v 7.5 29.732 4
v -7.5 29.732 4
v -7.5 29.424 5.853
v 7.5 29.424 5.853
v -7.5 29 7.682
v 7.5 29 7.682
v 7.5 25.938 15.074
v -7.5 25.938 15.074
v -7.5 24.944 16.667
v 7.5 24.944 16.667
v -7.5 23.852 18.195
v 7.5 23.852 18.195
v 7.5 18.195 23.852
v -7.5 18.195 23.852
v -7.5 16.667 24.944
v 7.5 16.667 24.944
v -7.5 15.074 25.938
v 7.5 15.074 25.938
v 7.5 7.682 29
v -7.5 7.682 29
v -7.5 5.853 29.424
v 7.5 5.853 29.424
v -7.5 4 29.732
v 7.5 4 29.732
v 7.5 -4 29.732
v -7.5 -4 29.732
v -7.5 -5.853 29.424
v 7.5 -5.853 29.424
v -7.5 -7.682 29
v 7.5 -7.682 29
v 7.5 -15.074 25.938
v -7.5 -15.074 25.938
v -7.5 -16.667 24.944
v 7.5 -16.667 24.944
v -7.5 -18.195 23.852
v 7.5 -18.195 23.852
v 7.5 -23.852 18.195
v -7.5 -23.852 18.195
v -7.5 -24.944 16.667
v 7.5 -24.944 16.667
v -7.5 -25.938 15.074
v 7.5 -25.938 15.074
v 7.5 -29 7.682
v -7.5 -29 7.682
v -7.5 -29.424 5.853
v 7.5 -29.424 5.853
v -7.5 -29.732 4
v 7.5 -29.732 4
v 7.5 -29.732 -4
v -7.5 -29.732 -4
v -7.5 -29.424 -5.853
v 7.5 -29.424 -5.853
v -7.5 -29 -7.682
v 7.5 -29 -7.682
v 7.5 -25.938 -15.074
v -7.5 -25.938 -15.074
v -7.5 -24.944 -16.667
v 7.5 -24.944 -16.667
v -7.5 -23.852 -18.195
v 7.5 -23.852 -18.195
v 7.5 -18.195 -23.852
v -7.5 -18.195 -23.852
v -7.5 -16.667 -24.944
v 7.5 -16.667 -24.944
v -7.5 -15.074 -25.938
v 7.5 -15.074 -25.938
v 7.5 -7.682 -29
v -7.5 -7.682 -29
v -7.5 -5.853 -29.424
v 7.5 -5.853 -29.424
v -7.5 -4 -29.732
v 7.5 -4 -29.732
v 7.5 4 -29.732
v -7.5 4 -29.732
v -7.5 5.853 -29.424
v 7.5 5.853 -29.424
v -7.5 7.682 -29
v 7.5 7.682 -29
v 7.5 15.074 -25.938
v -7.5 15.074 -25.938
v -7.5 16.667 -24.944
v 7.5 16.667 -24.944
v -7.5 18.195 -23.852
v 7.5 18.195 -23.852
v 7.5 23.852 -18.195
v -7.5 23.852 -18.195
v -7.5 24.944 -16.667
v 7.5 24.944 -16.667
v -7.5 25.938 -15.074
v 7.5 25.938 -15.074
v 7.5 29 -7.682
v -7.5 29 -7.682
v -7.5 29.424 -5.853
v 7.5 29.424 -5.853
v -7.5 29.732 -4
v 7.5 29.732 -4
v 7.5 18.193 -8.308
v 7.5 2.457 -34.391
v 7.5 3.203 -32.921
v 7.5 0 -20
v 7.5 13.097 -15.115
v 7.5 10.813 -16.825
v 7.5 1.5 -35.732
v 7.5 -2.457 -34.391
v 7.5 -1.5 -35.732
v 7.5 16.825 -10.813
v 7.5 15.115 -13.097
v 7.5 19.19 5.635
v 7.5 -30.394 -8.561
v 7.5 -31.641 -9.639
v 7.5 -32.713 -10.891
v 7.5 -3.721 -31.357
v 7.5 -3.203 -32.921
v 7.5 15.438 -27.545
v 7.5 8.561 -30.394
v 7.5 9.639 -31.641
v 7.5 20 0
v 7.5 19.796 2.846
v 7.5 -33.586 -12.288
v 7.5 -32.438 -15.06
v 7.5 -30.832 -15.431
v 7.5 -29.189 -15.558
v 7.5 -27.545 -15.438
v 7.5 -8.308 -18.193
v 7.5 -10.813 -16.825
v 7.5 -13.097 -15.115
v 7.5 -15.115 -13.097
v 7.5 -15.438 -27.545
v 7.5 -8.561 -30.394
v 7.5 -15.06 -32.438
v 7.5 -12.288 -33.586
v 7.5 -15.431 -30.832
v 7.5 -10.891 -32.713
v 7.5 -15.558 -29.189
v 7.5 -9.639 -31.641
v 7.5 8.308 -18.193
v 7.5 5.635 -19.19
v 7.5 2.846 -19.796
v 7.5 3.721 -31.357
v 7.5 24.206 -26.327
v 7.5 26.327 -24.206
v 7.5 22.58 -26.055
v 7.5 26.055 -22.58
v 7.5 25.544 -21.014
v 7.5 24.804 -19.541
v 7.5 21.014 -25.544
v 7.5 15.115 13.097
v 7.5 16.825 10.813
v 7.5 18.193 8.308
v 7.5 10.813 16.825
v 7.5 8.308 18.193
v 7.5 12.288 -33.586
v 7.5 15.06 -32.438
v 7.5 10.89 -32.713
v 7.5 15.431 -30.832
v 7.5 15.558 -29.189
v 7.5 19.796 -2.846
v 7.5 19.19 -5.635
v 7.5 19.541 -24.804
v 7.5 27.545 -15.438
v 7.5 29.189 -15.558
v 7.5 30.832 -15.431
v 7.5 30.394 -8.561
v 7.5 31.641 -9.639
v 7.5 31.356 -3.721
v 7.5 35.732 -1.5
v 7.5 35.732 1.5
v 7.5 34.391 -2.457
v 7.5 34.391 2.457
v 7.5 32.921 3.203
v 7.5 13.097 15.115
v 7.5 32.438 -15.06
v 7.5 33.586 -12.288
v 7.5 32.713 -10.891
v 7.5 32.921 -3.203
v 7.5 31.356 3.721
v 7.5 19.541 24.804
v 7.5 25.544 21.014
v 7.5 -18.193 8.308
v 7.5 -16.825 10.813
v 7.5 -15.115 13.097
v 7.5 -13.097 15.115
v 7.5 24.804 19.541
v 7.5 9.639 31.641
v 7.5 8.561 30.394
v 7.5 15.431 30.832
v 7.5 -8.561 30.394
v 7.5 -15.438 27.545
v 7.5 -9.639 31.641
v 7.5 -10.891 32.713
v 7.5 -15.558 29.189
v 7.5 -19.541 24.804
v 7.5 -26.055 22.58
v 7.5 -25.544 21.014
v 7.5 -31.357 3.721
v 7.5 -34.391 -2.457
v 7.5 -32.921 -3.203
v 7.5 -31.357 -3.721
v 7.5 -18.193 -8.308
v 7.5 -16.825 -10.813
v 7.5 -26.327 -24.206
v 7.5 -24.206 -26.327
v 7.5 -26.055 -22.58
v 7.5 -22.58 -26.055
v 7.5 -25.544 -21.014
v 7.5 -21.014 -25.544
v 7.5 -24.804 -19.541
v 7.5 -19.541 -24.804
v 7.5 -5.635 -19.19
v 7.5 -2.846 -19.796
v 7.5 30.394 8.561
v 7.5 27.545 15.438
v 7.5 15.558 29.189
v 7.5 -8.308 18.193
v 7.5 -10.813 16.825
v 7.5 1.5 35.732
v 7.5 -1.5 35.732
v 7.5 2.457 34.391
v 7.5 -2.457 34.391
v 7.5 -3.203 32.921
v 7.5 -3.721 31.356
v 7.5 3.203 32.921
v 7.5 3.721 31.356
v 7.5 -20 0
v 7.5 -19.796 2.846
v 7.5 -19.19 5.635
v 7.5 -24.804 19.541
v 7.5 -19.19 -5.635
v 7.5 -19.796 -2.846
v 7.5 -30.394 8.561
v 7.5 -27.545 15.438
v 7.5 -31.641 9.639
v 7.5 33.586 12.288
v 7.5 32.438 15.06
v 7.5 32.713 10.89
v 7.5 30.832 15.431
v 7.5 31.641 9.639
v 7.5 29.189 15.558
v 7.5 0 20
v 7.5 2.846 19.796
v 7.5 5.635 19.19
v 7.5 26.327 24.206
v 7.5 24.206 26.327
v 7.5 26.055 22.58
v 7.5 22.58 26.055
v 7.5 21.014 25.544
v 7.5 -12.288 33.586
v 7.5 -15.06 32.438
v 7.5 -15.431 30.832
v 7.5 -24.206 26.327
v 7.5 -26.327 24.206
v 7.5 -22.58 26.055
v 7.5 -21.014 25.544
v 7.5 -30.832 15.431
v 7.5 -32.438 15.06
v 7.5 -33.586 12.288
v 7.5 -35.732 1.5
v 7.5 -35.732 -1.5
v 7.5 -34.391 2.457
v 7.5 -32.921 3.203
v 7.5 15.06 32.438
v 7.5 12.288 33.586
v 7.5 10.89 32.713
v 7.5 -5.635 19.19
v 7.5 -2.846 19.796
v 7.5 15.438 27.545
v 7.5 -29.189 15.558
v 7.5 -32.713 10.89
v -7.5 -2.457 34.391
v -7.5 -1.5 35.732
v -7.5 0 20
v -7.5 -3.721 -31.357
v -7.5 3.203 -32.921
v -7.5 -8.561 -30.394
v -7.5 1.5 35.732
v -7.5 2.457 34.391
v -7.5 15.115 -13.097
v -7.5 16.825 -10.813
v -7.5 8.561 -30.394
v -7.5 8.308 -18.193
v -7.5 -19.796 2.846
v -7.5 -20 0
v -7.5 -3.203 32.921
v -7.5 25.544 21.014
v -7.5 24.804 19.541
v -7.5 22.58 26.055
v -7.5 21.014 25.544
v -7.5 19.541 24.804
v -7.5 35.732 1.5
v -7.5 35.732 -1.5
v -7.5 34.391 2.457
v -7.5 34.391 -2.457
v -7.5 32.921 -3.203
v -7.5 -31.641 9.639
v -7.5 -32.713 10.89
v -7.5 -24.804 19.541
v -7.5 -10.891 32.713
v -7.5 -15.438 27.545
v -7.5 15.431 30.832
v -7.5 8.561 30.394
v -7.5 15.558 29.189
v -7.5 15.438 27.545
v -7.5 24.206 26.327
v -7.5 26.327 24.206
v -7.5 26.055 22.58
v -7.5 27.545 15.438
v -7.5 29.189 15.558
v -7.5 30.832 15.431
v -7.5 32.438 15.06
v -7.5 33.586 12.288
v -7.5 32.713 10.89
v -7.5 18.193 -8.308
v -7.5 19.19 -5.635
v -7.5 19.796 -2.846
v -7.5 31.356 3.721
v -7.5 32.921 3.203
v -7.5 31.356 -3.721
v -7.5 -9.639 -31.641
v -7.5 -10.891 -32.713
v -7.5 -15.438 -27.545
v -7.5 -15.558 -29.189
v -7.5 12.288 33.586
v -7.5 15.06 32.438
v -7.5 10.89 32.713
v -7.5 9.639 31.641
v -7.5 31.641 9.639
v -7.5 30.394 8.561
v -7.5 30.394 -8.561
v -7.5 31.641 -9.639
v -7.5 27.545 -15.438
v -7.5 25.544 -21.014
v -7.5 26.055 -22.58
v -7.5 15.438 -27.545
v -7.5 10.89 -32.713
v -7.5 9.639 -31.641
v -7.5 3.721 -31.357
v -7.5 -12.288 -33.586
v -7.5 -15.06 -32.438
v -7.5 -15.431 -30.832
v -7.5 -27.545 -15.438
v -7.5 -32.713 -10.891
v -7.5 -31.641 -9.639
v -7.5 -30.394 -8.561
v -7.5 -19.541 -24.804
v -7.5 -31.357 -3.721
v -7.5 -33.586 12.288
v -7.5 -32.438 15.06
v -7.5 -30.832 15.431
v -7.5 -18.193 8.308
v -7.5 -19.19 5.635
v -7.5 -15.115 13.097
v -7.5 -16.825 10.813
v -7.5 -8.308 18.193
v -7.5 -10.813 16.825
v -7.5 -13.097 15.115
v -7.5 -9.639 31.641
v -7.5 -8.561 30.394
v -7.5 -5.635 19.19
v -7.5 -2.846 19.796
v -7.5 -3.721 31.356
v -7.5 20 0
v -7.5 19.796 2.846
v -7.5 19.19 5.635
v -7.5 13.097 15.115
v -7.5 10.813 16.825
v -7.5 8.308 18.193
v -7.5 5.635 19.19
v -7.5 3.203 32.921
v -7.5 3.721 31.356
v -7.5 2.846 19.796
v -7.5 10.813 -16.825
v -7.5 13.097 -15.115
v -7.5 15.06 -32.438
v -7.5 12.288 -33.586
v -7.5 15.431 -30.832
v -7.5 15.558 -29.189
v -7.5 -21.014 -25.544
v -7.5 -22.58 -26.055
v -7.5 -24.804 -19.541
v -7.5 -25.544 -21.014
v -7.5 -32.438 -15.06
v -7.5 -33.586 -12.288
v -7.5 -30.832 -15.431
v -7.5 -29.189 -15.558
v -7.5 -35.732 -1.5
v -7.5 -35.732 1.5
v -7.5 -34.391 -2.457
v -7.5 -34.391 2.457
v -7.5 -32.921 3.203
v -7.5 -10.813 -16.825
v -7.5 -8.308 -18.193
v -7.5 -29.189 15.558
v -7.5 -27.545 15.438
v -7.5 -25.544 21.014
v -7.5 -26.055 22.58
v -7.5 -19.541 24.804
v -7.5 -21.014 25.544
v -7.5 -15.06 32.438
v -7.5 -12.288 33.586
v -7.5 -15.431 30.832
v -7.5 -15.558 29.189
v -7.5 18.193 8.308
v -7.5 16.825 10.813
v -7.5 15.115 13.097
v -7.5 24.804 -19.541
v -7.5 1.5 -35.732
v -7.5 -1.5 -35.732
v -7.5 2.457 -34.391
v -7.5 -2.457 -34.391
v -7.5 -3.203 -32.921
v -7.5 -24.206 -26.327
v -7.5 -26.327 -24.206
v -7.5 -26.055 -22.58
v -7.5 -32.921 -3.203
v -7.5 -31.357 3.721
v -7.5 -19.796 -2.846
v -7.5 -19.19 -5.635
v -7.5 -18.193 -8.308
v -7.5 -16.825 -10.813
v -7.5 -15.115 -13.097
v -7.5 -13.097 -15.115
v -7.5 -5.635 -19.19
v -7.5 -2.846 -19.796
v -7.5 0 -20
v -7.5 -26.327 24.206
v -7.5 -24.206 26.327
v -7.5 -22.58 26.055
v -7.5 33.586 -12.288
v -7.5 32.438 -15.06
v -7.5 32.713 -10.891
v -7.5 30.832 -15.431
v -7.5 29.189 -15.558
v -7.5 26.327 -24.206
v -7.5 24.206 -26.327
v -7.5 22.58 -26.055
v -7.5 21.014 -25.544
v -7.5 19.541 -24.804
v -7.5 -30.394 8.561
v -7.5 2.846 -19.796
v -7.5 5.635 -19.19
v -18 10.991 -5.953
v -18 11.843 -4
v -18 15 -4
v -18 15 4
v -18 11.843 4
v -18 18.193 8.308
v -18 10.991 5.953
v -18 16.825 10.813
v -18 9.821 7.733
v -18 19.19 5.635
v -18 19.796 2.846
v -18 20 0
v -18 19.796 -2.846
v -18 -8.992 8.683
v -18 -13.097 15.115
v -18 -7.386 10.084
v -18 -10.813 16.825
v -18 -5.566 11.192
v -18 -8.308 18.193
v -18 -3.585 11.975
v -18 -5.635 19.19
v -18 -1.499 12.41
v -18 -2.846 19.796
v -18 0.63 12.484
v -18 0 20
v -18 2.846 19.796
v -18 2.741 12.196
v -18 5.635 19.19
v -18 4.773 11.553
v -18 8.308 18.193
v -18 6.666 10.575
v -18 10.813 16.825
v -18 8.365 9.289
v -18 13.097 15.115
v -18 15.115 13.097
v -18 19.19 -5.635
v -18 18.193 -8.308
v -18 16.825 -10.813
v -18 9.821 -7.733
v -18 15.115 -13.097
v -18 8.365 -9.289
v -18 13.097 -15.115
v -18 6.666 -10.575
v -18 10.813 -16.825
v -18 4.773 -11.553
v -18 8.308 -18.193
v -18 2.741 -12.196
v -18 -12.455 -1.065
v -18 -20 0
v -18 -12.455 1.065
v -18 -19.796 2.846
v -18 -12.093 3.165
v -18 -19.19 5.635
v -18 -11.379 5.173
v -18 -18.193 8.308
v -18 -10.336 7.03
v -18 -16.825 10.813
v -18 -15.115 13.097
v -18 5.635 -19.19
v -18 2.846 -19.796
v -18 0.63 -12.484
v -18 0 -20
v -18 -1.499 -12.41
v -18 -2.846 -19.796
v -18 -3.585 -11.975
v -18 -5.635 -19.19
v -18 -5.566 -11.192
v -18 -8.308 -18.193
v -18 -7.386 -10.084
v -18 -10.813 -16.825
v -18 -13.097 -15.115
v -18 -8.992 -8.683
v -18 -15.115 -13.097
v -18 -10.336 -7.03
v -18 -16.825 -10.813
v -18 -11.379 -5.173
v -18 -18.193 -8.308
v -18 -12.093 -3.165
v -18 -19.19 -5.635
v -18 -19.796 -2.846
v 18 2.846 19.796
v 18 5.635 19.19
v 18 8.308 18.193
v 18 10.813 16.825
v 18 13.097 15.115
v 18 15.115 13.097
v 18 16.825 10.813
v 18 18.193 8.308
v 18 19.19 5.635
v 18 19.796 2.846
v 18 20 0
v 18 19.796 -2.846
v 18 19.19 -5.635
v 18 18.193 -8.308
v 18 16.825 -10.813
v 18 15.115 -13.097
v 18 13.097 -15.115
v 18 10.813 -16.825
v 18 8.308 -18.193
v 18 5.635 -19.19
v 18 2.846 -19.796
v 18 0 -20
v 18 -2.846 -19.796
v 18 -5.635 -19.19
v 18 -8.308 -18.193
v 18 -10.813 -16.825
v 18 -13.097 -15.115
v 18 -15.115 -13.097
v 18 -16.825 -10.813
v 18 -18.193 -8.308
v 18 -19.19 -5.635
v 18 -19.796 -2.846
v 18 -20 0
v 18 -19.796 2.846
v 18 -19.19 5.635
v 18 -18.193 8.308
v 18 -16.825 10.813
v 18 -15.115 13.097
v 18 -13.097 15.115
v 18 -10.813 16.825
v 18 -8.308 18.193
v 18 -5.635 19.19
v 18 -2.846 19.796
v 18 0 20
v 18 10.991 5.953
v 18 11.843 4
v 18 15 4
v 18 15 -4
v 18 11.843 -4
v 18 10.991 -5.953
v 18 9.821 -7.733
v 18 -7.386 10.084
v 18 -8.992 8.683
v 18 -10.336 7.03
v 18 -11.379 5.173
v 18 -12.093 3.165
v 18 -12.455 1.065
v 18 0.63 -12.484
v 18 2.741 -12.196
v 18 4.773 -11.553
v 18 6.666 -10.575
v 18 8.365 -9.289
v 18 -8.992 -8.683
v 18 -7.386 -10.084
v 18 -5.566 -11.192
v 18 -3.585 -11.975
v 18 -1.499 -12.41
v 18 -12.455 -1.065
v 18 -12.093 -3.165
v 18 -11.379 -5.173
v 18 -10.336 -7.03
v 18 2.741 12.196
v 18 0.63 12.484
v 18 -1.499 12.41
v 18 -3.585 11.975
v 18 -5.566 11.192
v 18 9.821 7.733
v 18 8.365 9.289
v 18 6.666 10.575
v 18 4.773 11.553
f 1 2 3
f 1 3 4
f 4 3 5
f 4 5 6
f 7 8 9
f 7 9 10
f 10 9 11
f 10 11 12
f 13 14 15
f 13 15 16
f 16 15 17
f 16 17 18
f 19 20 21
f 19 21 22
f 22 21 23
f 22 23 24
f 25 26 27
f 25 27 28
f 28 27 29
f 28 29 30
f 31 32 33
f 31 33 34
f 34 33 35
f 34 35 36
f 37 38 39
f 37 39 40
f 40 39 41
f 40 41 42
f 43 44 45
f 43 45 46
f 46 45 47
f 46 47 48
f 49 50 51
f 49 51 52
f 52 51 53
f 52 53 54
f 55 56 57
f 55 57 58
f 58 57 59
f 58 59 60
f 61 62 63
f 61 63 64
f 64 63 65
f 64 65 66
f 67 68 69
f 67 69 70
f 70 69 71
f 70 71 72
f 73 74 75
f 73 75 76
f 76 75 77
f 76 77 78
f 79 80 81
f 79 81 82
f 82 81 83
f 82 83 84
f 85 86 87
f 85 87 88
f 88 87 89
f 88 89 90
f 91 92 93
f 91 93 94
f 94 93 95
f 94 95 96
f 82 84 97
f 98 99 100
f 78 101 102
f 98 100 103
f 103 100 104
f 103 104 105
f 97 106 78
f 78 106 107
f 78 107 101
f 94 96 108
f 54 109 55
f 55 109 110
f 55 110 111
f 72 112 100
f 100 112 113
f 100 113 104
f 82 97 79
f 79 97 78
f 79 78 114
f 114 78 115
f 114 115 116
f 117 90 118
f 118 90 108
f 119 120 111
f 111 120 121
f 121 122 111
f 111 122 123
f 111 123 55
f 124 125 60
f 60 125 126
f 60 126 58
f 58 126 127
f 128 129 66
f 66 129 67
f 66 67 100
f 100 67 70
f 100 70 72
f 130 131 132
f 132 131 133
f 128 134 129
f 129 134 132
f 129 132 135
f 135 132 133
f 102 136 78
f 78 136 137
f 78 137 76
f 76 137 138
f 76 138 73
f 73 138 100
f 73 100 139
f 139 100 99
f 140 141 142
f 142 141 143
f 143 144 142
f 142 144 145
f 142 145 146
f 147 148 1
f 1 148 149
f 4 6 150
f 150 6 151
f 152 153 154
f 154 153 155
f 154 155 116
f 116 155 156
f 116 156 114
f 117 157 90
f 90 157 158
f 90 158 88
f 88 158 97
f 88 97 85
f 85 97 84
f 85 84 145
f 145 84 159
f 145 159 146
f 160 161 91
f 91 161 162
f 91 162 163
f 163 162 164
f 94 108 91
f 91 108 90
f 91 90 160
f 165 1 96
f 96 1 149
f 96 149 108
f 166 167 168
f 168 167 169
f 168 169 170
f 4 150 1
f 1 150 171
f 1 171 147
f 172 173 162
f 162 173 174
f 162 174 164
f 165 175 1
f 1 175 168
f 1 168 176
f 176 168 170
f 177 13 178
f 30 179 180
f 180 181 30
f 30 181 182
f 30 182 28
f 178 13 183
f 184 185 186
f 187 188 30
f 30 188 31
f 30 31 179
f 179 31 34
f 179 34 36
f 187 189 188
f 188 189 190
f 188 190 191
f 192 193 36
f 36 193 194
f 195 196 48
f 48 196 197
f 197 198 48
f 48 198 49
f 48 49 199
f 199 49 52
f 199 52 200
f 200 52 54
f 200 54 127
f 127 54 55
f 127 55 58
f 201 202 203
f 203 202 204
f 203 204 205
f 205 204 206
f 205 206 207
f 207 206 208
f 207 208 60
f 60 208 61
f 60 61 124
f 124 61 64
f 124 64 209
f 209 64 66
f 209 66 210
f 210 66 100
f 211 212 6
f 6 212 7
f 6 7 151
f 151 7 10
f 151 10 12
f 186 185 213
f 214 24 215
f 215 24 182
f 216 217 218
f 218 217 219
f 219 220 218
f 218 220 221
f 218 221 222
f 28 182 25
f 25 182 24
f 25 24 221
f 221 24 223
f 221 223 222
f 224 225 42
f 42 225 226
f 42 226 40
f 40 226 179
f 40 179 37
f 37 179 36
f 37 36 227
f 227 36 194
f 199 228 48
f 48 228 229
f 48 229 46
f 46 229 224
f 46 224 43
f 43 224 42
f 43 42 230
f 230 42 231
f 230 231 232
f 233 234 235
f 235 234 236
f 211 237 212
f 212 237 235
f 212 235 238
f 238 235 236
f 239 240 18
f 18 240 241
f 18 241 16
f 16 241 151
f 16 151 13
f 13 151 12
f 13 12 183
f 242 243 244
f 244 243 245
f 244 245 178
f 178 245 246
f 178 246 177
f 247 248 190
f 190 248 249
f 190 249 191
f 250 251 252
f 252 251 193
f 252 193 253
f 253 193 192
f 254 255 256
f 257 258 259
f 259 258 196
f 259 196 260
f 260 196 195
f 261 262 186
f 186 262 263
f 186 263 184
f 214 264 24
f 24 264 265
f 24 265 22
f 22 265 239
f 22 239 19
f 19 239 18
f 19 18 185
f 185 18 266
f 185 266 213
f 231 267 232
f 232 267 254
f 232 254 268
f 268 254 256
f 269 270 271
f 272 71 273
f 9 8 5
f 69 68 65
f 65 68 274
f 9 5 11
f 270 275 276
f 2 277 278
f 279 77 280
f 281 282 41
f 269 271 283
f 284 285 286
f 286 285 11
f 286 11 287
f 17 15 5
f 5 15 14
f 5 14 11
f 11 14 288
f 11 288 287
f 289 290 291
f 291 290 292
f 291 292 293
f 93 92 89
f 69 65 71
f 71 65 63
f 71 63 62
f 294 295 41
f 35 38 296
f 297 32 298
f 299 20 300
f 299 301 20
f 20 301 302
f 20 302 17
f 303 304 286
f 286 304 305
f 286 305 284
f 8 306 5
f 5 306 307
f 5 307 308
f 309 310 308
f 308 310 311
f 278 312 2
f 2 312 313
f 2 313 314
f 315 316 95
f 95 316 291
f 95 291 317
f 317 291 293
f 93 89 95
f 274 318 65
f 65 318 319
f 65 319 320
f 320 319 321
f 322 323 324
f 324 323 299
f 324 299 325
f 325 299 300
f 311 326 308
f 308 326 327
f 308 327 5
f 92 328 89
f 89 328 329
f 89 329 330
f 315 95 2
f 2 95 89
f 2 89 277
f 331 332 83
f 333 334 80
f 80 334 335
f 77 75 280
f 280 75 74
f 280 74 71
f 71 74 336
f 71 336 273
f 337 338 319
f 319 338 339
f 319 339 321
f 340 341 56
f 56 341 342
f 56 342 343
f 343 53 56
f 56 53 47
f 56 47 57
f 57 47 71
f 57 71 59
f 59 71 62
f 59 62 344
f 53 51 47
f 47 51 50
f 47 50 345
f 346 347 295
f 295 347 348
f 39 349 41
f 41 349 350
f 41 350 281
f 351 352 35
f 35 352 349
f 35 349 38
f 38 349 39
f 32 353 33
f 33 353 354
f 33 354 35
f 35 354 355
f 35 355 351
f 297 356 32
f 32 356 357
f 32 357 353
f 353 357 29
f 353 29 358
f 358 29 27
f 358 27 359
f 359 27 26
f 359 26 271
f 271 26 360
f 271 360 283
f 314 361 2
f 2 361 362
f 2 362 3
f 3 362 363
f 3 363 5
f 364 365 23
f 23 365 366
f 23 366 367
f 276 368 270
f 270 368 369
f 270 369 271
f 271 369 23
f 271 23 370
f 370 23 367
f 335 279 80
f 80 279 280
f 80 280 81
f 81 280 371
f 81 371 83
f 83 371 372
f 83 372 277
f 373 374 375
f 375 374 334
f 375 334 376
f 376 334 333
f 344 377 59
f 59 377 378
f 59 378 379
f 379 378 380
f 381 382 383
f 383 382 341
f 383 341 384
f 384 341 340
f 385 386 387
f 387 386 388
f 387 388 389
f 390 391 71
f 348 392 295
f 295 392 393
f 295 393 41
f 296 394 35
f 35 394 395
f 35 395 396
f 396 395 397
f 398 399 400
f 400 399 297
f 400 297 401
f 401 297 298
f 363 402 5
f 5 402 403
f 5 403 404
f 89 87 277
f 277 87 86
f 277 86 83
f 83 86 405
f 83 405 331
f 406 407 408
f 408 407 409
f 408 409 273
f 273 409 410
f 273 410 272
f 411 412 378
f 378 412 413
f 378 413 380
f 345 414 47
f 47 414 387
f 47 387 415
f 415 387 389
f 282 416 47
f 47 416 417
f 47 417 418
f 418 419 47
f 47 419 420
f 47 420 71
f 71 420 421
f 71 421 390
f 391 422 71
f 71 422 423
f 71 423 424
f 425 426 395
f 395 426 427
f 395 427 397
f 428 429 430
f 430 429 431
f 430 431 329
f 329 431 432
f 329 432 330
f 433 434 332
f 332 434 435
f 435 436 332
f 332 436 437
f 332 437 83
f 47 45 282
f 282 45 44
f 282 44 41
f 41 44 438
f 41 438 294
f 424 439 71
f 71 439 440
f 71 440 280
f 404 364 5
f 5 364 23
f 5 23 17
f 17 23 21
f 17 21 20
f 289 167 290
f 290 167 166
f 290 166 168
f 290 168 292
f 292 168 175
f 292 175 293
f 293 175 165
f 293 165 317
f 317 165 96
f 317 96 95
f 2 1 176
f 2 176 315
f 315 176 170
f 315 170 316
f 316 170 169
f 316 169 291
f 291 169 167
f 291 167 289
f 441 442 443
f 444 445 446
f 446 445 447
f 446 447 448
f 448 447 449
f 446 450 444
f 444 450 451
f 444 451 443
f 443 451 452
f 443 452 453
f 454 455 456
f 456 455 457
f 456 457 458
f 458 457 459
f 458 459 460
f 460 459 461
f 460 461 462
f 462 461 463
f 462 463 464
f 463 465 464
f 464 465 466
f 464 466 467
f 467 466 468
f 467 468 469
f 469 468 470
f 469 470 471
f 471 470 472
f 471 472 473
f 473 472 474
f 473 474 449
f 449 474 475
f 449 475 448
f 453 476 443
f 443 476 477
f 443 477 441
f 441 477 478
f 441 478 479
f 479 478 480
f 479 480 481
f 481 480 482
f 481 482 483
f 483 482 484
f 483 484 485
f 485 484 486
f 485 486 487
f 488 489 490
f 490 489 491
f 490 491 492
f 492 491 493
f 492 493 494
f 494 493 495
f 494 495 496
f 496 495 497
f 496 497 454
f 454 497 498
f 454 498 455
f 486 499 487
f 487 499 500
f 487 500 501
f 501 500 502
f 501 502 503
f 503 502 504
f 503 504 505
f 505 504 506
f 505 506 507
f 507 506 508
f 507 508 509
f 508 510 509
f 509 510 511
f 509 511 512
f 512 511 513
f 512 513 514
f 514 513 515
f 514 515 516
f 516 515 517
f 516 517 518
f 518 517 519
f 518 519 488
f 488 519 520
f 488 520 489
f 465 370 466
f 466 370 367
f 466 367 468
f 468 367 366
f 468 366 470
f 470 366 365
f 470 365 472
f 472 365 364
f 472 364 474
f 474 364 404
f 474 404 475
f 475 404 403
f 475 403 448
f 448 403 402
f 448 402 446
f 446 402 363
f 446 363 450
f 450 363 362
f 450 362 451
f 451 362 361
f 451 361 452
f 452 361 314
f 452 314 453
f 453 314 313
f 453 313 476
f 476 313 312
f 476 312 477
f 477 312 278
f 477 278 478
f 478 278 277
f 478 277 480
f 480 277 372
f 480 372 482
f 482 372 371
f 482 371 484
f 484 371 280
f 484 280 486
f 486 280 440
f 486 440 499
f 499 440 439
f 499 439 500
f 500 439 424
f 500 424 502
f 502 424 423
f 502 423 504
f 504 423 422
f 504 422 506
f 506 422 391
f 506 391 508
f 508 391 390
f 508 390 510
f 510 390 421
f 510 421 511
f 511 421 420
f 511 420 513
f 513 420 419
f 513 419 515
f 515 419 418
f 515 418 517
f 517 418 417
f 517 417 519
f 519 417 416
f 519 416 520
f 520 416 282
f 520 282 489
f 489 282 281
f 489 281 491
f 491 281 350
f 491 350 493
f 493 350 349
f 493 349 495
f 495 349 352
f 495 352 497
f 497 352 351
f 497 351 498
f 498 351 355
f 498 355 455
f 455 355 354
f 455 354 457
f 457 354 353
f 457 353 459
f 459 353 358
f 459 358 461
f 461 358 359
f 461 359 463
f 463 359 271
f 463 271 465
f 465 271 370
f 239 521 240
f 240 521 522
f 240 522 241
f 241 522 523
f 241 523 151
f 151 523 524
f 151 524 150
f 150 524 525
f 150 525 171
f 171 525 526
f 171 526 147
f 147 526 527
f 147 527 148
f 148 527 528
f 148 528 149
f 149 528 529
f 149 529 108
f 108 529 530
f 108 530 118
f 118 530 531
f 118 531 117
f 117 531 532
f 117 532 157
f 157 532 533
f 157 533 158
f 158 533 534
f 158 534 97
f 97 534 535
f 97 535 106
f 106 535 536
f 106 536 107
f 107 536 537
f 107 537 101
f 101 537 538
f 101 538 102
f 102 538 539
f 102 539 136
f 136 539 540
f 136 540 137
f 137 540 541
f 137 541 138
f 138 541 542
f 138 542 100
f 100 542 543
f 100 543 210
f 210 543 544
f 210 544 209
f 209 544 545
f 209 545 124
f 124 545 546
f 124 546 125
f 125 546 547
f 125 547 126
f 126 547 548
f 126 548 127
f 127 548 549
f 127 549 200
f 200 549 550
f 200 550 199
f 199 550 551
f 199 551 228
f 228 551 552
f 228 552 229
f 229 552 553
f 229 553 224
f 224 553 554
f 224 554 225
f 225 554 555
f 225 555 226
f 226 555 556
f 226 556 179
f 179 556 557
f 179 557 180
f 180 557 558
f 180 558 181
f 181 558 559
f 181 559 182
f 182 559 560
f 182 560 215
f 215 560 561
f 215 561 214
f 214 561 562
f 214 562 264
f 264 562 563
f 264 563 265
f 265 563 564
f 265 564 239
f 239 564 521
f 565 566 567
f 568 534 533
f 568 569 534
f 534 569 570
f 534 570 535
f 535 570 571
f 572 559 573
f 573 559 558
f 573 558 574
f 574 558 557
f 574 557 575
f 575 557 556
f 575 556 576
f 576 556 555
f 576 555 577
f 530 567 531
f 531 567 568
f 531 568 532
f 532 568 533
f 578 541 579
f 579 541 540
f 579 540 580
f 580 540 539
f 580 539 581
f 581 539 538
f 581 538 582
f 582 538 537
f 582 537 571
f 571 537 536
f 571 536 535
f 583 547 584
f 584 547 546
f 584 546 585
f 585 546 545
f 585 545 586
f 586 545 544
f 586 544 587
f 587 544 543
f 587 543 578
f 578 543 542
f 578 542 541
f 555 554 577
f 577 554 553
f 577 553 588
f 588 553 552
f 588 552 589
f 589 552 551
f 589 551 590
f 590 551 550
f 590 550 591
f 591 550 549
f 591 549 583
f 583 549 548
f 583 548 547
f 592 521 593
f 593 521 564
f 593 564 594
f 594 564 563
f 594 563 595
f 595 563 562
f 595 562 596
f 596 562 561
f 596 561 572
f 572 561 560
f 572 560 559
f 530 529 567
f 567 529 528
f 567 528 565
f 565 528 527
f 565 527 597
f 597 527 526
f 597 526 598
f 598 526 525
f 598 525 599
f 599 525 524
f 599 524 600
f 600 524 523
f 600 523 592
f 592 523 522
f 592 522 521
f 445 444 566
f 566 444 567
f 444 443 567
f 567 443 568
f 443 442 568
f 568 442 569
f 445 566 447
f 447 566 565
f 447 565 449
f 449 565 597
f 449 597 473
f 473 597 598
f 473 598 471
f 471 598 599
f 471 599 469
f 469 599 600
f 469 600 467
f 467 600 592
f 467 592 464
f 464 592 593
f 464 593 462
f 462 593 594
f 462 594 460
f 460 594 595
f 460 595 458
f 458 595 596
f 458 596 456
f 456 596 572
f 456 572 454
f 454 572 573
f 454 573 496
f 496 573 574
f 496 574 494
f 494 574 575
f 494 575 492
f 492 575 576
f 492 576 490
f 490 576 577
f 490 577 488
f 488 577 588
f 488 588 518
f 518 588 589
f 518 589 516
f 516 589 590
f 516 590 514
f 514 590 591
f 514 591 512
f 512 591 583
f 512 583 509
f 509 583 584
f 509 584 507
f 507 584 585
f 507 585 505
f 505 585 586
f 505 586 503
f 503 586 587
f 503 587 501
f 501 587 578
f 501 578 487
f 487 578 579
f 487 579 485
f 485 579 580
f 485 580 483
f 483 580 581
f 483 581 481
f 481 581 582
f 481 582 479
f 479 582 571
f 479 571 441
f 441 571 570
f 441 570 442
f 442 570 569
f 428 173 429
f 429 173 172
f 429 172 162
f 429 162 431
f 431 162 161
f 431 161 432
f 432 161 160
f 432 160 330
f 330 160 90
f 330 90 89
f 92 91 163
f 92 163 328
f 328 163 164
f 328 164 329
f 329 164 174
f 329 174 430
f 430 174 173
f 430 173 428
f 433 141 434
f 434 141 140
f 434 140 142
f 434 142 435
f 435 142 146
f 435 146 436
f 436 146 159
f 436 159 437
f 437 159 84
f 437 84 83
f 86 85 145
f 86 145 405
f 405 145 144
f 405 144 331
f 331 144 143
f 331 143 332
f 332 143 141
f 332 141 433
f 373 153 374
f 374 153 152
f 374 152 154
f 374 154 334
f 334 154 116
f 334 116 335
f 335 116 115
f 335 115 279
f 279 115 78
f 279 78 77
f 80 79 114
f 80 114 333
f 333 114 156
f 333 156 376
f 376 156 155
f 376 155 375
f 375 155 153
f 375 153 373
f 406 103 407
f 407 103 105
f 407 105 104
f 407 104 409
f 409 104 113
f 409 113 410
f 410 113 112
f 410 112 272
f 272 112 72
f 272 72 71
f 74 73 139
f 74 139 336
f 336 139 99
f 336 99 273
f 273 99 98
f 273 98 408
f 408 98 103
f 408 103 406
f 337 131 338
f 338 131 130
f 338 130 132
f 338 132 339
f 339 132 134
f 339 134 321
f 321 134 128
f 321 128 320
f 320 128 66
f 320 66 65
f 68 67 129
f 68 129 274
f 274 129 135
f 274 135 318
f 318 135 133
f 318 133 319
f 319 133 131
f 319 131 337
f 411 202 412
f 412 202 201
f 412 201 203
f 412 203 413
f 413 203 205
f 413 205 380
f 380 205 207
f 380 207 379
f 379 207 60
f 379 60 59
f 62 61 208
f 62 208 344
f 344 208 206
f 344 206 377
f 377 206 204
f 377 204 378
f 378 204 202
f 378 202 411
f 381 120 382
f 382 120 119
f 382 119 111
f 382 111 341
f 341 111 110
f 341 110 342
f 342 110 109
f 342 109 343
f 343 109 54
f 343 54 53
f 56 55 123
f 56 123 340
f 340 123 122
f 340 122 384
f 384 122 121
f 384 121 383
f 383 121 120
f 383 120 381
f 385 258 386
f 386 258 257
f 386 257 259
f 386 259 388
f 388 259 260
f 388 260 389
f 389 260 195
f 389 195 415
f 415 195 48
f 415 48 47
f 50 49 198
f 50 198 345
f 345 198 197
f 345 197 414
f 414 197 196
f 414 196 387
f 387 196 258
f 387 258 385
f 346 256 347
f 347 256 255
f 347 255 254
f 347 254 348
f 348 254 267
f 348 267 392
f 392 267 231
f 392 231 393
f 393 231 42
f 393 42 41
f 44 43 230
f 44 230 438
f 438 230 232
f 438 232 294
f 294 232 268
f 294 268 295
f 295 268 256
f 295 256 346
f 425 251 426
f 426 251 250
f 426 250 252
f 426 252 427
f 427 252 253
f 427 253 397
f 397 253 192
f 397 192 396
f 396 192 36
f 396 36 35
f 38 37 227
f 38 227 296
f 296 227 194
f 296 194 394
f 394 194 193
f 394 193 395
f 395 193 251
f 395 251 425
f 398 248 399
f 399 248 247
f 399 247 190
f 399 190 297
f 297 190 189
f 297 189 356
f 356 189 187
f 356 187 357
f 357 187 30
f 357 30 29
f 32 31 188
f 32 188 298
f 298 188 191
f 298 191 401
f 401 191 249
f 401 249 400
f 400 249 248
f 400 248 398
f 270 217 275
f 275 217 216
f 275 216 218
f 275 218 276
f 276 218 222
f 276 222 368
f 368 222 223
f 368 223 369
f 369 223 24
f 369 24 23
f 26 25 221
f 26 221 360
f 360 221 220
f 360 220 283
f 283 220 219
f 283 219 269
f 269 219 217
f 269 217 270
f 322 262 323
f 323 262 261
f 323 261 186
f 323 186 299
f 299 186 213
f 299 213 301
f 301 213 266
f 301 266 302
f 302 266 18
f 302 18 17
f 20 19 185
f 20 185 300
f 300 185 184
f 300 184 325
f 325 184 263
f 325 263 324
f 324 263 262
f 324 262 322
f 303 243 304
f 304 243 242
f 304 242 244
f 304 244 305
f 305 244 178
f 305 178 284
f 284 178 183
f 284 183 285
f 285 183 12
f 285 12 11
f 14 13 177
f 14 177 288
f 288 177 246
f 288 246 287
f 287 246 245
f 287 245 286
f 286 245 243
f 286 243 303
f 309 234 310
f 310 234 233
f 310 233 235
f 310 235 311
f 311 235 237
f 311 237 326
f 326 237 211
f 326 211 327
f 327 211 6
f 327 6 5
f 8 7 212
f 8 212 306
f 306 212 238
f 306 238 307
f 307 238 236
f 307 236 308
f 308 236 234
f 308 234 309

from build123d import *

# Parameters (mm, degrees)
SKETCH1_R           = 30
BOSS_EXTRUDE1_DEPTH = 7.5
BOSS_EXTRUDE2_DEPTH = 15
SKETCH4_R           = 20
BOSS_EXTRUDE3_DEPTH = 18
CUT_EXTRUDE1_DEPTH  = 37
CIRPATTERN1_COUNT   = 16


with BuildPart() as part:
    # Sketch1 → Boss-Extrude1 (new body, symmetric)
    with BuildSketch(Plane(origin=(0, 0, 0), x_dir=(0, 0, -1), z_dir=(1, 0, 0))):
        Circle(SKETCH1_R)
    extrude(amount=BOSS_EXTRUDE1_DEPTH, both=True)

    # Sketch3 → Boss-Extrude2 (add)
    with BuildSketch(Plane(origin=(7.5, 0, 0), x_dir=(0, 0, -1), z_dir=(1, 0, 0))):
        with BuildLine():
            Line((-1.5, 35.732137495), (1.5, 35.732137495))
            ThreePointArc((1.5, 35.732137495), (3.203300204, 32.92101258), (4, 29.732137495))
            ThreePointArc((4, 29.732137495), (0, 30), (-4, 29.732137495))
            ThreePointArc((-4, 29.732137495), (-3.203300204, 32.92101258), (-1.5, 35.732137495))
        make_face()
    boss_extrude2 = extrude(amount=-BOSS_EXTRUDE2_DEPTH)

    # Sketch4 → Boss-Extrude3 (add, symmetric)
    with BuildSketch(Plane(origin=(0, 0, 0), x_dir=(0, 0, -1), z_dir=(1, 0, 0))):
        Circle(SKETCH4_R)
    extrude(amount=BOSS_EXTRUDE3_DEPTH, both=True)

    # Sketch5 → Cut-Extrude1 (cut, through all)
    with BuildSketch(Plane(origin=(18, 0, 0), x_dir=(0, 0, -1), z_dir=(1, 0, 0))):
        with BuildLine():
            Line((-4, 15), (4, 15))
            Line((4, 15), (4, 11.842719282))
            ThreePointArc((4, 11.842719282), (0, -12.5), (-4, 11.842719282))
            Line((-4, 11.842719282), (-4, 15))
        make_face()
    extrude(amount=-CUT_EXTRUDE1_DEPTH, mode=Mode.SUBTRACT)

    # CirPattern1: Boss-Extrude2 ×16 about axis
    cirpattern1_axis = Axis((0, 0, 0), (1, 0, 0))
    for i in range(1, CIRPATTERN1_COUNT):
        add(boss_extrude2.rotate(cirpattern1_axis, i * 360 / CIRPATTERN1_COUNT))


solid = part.part
